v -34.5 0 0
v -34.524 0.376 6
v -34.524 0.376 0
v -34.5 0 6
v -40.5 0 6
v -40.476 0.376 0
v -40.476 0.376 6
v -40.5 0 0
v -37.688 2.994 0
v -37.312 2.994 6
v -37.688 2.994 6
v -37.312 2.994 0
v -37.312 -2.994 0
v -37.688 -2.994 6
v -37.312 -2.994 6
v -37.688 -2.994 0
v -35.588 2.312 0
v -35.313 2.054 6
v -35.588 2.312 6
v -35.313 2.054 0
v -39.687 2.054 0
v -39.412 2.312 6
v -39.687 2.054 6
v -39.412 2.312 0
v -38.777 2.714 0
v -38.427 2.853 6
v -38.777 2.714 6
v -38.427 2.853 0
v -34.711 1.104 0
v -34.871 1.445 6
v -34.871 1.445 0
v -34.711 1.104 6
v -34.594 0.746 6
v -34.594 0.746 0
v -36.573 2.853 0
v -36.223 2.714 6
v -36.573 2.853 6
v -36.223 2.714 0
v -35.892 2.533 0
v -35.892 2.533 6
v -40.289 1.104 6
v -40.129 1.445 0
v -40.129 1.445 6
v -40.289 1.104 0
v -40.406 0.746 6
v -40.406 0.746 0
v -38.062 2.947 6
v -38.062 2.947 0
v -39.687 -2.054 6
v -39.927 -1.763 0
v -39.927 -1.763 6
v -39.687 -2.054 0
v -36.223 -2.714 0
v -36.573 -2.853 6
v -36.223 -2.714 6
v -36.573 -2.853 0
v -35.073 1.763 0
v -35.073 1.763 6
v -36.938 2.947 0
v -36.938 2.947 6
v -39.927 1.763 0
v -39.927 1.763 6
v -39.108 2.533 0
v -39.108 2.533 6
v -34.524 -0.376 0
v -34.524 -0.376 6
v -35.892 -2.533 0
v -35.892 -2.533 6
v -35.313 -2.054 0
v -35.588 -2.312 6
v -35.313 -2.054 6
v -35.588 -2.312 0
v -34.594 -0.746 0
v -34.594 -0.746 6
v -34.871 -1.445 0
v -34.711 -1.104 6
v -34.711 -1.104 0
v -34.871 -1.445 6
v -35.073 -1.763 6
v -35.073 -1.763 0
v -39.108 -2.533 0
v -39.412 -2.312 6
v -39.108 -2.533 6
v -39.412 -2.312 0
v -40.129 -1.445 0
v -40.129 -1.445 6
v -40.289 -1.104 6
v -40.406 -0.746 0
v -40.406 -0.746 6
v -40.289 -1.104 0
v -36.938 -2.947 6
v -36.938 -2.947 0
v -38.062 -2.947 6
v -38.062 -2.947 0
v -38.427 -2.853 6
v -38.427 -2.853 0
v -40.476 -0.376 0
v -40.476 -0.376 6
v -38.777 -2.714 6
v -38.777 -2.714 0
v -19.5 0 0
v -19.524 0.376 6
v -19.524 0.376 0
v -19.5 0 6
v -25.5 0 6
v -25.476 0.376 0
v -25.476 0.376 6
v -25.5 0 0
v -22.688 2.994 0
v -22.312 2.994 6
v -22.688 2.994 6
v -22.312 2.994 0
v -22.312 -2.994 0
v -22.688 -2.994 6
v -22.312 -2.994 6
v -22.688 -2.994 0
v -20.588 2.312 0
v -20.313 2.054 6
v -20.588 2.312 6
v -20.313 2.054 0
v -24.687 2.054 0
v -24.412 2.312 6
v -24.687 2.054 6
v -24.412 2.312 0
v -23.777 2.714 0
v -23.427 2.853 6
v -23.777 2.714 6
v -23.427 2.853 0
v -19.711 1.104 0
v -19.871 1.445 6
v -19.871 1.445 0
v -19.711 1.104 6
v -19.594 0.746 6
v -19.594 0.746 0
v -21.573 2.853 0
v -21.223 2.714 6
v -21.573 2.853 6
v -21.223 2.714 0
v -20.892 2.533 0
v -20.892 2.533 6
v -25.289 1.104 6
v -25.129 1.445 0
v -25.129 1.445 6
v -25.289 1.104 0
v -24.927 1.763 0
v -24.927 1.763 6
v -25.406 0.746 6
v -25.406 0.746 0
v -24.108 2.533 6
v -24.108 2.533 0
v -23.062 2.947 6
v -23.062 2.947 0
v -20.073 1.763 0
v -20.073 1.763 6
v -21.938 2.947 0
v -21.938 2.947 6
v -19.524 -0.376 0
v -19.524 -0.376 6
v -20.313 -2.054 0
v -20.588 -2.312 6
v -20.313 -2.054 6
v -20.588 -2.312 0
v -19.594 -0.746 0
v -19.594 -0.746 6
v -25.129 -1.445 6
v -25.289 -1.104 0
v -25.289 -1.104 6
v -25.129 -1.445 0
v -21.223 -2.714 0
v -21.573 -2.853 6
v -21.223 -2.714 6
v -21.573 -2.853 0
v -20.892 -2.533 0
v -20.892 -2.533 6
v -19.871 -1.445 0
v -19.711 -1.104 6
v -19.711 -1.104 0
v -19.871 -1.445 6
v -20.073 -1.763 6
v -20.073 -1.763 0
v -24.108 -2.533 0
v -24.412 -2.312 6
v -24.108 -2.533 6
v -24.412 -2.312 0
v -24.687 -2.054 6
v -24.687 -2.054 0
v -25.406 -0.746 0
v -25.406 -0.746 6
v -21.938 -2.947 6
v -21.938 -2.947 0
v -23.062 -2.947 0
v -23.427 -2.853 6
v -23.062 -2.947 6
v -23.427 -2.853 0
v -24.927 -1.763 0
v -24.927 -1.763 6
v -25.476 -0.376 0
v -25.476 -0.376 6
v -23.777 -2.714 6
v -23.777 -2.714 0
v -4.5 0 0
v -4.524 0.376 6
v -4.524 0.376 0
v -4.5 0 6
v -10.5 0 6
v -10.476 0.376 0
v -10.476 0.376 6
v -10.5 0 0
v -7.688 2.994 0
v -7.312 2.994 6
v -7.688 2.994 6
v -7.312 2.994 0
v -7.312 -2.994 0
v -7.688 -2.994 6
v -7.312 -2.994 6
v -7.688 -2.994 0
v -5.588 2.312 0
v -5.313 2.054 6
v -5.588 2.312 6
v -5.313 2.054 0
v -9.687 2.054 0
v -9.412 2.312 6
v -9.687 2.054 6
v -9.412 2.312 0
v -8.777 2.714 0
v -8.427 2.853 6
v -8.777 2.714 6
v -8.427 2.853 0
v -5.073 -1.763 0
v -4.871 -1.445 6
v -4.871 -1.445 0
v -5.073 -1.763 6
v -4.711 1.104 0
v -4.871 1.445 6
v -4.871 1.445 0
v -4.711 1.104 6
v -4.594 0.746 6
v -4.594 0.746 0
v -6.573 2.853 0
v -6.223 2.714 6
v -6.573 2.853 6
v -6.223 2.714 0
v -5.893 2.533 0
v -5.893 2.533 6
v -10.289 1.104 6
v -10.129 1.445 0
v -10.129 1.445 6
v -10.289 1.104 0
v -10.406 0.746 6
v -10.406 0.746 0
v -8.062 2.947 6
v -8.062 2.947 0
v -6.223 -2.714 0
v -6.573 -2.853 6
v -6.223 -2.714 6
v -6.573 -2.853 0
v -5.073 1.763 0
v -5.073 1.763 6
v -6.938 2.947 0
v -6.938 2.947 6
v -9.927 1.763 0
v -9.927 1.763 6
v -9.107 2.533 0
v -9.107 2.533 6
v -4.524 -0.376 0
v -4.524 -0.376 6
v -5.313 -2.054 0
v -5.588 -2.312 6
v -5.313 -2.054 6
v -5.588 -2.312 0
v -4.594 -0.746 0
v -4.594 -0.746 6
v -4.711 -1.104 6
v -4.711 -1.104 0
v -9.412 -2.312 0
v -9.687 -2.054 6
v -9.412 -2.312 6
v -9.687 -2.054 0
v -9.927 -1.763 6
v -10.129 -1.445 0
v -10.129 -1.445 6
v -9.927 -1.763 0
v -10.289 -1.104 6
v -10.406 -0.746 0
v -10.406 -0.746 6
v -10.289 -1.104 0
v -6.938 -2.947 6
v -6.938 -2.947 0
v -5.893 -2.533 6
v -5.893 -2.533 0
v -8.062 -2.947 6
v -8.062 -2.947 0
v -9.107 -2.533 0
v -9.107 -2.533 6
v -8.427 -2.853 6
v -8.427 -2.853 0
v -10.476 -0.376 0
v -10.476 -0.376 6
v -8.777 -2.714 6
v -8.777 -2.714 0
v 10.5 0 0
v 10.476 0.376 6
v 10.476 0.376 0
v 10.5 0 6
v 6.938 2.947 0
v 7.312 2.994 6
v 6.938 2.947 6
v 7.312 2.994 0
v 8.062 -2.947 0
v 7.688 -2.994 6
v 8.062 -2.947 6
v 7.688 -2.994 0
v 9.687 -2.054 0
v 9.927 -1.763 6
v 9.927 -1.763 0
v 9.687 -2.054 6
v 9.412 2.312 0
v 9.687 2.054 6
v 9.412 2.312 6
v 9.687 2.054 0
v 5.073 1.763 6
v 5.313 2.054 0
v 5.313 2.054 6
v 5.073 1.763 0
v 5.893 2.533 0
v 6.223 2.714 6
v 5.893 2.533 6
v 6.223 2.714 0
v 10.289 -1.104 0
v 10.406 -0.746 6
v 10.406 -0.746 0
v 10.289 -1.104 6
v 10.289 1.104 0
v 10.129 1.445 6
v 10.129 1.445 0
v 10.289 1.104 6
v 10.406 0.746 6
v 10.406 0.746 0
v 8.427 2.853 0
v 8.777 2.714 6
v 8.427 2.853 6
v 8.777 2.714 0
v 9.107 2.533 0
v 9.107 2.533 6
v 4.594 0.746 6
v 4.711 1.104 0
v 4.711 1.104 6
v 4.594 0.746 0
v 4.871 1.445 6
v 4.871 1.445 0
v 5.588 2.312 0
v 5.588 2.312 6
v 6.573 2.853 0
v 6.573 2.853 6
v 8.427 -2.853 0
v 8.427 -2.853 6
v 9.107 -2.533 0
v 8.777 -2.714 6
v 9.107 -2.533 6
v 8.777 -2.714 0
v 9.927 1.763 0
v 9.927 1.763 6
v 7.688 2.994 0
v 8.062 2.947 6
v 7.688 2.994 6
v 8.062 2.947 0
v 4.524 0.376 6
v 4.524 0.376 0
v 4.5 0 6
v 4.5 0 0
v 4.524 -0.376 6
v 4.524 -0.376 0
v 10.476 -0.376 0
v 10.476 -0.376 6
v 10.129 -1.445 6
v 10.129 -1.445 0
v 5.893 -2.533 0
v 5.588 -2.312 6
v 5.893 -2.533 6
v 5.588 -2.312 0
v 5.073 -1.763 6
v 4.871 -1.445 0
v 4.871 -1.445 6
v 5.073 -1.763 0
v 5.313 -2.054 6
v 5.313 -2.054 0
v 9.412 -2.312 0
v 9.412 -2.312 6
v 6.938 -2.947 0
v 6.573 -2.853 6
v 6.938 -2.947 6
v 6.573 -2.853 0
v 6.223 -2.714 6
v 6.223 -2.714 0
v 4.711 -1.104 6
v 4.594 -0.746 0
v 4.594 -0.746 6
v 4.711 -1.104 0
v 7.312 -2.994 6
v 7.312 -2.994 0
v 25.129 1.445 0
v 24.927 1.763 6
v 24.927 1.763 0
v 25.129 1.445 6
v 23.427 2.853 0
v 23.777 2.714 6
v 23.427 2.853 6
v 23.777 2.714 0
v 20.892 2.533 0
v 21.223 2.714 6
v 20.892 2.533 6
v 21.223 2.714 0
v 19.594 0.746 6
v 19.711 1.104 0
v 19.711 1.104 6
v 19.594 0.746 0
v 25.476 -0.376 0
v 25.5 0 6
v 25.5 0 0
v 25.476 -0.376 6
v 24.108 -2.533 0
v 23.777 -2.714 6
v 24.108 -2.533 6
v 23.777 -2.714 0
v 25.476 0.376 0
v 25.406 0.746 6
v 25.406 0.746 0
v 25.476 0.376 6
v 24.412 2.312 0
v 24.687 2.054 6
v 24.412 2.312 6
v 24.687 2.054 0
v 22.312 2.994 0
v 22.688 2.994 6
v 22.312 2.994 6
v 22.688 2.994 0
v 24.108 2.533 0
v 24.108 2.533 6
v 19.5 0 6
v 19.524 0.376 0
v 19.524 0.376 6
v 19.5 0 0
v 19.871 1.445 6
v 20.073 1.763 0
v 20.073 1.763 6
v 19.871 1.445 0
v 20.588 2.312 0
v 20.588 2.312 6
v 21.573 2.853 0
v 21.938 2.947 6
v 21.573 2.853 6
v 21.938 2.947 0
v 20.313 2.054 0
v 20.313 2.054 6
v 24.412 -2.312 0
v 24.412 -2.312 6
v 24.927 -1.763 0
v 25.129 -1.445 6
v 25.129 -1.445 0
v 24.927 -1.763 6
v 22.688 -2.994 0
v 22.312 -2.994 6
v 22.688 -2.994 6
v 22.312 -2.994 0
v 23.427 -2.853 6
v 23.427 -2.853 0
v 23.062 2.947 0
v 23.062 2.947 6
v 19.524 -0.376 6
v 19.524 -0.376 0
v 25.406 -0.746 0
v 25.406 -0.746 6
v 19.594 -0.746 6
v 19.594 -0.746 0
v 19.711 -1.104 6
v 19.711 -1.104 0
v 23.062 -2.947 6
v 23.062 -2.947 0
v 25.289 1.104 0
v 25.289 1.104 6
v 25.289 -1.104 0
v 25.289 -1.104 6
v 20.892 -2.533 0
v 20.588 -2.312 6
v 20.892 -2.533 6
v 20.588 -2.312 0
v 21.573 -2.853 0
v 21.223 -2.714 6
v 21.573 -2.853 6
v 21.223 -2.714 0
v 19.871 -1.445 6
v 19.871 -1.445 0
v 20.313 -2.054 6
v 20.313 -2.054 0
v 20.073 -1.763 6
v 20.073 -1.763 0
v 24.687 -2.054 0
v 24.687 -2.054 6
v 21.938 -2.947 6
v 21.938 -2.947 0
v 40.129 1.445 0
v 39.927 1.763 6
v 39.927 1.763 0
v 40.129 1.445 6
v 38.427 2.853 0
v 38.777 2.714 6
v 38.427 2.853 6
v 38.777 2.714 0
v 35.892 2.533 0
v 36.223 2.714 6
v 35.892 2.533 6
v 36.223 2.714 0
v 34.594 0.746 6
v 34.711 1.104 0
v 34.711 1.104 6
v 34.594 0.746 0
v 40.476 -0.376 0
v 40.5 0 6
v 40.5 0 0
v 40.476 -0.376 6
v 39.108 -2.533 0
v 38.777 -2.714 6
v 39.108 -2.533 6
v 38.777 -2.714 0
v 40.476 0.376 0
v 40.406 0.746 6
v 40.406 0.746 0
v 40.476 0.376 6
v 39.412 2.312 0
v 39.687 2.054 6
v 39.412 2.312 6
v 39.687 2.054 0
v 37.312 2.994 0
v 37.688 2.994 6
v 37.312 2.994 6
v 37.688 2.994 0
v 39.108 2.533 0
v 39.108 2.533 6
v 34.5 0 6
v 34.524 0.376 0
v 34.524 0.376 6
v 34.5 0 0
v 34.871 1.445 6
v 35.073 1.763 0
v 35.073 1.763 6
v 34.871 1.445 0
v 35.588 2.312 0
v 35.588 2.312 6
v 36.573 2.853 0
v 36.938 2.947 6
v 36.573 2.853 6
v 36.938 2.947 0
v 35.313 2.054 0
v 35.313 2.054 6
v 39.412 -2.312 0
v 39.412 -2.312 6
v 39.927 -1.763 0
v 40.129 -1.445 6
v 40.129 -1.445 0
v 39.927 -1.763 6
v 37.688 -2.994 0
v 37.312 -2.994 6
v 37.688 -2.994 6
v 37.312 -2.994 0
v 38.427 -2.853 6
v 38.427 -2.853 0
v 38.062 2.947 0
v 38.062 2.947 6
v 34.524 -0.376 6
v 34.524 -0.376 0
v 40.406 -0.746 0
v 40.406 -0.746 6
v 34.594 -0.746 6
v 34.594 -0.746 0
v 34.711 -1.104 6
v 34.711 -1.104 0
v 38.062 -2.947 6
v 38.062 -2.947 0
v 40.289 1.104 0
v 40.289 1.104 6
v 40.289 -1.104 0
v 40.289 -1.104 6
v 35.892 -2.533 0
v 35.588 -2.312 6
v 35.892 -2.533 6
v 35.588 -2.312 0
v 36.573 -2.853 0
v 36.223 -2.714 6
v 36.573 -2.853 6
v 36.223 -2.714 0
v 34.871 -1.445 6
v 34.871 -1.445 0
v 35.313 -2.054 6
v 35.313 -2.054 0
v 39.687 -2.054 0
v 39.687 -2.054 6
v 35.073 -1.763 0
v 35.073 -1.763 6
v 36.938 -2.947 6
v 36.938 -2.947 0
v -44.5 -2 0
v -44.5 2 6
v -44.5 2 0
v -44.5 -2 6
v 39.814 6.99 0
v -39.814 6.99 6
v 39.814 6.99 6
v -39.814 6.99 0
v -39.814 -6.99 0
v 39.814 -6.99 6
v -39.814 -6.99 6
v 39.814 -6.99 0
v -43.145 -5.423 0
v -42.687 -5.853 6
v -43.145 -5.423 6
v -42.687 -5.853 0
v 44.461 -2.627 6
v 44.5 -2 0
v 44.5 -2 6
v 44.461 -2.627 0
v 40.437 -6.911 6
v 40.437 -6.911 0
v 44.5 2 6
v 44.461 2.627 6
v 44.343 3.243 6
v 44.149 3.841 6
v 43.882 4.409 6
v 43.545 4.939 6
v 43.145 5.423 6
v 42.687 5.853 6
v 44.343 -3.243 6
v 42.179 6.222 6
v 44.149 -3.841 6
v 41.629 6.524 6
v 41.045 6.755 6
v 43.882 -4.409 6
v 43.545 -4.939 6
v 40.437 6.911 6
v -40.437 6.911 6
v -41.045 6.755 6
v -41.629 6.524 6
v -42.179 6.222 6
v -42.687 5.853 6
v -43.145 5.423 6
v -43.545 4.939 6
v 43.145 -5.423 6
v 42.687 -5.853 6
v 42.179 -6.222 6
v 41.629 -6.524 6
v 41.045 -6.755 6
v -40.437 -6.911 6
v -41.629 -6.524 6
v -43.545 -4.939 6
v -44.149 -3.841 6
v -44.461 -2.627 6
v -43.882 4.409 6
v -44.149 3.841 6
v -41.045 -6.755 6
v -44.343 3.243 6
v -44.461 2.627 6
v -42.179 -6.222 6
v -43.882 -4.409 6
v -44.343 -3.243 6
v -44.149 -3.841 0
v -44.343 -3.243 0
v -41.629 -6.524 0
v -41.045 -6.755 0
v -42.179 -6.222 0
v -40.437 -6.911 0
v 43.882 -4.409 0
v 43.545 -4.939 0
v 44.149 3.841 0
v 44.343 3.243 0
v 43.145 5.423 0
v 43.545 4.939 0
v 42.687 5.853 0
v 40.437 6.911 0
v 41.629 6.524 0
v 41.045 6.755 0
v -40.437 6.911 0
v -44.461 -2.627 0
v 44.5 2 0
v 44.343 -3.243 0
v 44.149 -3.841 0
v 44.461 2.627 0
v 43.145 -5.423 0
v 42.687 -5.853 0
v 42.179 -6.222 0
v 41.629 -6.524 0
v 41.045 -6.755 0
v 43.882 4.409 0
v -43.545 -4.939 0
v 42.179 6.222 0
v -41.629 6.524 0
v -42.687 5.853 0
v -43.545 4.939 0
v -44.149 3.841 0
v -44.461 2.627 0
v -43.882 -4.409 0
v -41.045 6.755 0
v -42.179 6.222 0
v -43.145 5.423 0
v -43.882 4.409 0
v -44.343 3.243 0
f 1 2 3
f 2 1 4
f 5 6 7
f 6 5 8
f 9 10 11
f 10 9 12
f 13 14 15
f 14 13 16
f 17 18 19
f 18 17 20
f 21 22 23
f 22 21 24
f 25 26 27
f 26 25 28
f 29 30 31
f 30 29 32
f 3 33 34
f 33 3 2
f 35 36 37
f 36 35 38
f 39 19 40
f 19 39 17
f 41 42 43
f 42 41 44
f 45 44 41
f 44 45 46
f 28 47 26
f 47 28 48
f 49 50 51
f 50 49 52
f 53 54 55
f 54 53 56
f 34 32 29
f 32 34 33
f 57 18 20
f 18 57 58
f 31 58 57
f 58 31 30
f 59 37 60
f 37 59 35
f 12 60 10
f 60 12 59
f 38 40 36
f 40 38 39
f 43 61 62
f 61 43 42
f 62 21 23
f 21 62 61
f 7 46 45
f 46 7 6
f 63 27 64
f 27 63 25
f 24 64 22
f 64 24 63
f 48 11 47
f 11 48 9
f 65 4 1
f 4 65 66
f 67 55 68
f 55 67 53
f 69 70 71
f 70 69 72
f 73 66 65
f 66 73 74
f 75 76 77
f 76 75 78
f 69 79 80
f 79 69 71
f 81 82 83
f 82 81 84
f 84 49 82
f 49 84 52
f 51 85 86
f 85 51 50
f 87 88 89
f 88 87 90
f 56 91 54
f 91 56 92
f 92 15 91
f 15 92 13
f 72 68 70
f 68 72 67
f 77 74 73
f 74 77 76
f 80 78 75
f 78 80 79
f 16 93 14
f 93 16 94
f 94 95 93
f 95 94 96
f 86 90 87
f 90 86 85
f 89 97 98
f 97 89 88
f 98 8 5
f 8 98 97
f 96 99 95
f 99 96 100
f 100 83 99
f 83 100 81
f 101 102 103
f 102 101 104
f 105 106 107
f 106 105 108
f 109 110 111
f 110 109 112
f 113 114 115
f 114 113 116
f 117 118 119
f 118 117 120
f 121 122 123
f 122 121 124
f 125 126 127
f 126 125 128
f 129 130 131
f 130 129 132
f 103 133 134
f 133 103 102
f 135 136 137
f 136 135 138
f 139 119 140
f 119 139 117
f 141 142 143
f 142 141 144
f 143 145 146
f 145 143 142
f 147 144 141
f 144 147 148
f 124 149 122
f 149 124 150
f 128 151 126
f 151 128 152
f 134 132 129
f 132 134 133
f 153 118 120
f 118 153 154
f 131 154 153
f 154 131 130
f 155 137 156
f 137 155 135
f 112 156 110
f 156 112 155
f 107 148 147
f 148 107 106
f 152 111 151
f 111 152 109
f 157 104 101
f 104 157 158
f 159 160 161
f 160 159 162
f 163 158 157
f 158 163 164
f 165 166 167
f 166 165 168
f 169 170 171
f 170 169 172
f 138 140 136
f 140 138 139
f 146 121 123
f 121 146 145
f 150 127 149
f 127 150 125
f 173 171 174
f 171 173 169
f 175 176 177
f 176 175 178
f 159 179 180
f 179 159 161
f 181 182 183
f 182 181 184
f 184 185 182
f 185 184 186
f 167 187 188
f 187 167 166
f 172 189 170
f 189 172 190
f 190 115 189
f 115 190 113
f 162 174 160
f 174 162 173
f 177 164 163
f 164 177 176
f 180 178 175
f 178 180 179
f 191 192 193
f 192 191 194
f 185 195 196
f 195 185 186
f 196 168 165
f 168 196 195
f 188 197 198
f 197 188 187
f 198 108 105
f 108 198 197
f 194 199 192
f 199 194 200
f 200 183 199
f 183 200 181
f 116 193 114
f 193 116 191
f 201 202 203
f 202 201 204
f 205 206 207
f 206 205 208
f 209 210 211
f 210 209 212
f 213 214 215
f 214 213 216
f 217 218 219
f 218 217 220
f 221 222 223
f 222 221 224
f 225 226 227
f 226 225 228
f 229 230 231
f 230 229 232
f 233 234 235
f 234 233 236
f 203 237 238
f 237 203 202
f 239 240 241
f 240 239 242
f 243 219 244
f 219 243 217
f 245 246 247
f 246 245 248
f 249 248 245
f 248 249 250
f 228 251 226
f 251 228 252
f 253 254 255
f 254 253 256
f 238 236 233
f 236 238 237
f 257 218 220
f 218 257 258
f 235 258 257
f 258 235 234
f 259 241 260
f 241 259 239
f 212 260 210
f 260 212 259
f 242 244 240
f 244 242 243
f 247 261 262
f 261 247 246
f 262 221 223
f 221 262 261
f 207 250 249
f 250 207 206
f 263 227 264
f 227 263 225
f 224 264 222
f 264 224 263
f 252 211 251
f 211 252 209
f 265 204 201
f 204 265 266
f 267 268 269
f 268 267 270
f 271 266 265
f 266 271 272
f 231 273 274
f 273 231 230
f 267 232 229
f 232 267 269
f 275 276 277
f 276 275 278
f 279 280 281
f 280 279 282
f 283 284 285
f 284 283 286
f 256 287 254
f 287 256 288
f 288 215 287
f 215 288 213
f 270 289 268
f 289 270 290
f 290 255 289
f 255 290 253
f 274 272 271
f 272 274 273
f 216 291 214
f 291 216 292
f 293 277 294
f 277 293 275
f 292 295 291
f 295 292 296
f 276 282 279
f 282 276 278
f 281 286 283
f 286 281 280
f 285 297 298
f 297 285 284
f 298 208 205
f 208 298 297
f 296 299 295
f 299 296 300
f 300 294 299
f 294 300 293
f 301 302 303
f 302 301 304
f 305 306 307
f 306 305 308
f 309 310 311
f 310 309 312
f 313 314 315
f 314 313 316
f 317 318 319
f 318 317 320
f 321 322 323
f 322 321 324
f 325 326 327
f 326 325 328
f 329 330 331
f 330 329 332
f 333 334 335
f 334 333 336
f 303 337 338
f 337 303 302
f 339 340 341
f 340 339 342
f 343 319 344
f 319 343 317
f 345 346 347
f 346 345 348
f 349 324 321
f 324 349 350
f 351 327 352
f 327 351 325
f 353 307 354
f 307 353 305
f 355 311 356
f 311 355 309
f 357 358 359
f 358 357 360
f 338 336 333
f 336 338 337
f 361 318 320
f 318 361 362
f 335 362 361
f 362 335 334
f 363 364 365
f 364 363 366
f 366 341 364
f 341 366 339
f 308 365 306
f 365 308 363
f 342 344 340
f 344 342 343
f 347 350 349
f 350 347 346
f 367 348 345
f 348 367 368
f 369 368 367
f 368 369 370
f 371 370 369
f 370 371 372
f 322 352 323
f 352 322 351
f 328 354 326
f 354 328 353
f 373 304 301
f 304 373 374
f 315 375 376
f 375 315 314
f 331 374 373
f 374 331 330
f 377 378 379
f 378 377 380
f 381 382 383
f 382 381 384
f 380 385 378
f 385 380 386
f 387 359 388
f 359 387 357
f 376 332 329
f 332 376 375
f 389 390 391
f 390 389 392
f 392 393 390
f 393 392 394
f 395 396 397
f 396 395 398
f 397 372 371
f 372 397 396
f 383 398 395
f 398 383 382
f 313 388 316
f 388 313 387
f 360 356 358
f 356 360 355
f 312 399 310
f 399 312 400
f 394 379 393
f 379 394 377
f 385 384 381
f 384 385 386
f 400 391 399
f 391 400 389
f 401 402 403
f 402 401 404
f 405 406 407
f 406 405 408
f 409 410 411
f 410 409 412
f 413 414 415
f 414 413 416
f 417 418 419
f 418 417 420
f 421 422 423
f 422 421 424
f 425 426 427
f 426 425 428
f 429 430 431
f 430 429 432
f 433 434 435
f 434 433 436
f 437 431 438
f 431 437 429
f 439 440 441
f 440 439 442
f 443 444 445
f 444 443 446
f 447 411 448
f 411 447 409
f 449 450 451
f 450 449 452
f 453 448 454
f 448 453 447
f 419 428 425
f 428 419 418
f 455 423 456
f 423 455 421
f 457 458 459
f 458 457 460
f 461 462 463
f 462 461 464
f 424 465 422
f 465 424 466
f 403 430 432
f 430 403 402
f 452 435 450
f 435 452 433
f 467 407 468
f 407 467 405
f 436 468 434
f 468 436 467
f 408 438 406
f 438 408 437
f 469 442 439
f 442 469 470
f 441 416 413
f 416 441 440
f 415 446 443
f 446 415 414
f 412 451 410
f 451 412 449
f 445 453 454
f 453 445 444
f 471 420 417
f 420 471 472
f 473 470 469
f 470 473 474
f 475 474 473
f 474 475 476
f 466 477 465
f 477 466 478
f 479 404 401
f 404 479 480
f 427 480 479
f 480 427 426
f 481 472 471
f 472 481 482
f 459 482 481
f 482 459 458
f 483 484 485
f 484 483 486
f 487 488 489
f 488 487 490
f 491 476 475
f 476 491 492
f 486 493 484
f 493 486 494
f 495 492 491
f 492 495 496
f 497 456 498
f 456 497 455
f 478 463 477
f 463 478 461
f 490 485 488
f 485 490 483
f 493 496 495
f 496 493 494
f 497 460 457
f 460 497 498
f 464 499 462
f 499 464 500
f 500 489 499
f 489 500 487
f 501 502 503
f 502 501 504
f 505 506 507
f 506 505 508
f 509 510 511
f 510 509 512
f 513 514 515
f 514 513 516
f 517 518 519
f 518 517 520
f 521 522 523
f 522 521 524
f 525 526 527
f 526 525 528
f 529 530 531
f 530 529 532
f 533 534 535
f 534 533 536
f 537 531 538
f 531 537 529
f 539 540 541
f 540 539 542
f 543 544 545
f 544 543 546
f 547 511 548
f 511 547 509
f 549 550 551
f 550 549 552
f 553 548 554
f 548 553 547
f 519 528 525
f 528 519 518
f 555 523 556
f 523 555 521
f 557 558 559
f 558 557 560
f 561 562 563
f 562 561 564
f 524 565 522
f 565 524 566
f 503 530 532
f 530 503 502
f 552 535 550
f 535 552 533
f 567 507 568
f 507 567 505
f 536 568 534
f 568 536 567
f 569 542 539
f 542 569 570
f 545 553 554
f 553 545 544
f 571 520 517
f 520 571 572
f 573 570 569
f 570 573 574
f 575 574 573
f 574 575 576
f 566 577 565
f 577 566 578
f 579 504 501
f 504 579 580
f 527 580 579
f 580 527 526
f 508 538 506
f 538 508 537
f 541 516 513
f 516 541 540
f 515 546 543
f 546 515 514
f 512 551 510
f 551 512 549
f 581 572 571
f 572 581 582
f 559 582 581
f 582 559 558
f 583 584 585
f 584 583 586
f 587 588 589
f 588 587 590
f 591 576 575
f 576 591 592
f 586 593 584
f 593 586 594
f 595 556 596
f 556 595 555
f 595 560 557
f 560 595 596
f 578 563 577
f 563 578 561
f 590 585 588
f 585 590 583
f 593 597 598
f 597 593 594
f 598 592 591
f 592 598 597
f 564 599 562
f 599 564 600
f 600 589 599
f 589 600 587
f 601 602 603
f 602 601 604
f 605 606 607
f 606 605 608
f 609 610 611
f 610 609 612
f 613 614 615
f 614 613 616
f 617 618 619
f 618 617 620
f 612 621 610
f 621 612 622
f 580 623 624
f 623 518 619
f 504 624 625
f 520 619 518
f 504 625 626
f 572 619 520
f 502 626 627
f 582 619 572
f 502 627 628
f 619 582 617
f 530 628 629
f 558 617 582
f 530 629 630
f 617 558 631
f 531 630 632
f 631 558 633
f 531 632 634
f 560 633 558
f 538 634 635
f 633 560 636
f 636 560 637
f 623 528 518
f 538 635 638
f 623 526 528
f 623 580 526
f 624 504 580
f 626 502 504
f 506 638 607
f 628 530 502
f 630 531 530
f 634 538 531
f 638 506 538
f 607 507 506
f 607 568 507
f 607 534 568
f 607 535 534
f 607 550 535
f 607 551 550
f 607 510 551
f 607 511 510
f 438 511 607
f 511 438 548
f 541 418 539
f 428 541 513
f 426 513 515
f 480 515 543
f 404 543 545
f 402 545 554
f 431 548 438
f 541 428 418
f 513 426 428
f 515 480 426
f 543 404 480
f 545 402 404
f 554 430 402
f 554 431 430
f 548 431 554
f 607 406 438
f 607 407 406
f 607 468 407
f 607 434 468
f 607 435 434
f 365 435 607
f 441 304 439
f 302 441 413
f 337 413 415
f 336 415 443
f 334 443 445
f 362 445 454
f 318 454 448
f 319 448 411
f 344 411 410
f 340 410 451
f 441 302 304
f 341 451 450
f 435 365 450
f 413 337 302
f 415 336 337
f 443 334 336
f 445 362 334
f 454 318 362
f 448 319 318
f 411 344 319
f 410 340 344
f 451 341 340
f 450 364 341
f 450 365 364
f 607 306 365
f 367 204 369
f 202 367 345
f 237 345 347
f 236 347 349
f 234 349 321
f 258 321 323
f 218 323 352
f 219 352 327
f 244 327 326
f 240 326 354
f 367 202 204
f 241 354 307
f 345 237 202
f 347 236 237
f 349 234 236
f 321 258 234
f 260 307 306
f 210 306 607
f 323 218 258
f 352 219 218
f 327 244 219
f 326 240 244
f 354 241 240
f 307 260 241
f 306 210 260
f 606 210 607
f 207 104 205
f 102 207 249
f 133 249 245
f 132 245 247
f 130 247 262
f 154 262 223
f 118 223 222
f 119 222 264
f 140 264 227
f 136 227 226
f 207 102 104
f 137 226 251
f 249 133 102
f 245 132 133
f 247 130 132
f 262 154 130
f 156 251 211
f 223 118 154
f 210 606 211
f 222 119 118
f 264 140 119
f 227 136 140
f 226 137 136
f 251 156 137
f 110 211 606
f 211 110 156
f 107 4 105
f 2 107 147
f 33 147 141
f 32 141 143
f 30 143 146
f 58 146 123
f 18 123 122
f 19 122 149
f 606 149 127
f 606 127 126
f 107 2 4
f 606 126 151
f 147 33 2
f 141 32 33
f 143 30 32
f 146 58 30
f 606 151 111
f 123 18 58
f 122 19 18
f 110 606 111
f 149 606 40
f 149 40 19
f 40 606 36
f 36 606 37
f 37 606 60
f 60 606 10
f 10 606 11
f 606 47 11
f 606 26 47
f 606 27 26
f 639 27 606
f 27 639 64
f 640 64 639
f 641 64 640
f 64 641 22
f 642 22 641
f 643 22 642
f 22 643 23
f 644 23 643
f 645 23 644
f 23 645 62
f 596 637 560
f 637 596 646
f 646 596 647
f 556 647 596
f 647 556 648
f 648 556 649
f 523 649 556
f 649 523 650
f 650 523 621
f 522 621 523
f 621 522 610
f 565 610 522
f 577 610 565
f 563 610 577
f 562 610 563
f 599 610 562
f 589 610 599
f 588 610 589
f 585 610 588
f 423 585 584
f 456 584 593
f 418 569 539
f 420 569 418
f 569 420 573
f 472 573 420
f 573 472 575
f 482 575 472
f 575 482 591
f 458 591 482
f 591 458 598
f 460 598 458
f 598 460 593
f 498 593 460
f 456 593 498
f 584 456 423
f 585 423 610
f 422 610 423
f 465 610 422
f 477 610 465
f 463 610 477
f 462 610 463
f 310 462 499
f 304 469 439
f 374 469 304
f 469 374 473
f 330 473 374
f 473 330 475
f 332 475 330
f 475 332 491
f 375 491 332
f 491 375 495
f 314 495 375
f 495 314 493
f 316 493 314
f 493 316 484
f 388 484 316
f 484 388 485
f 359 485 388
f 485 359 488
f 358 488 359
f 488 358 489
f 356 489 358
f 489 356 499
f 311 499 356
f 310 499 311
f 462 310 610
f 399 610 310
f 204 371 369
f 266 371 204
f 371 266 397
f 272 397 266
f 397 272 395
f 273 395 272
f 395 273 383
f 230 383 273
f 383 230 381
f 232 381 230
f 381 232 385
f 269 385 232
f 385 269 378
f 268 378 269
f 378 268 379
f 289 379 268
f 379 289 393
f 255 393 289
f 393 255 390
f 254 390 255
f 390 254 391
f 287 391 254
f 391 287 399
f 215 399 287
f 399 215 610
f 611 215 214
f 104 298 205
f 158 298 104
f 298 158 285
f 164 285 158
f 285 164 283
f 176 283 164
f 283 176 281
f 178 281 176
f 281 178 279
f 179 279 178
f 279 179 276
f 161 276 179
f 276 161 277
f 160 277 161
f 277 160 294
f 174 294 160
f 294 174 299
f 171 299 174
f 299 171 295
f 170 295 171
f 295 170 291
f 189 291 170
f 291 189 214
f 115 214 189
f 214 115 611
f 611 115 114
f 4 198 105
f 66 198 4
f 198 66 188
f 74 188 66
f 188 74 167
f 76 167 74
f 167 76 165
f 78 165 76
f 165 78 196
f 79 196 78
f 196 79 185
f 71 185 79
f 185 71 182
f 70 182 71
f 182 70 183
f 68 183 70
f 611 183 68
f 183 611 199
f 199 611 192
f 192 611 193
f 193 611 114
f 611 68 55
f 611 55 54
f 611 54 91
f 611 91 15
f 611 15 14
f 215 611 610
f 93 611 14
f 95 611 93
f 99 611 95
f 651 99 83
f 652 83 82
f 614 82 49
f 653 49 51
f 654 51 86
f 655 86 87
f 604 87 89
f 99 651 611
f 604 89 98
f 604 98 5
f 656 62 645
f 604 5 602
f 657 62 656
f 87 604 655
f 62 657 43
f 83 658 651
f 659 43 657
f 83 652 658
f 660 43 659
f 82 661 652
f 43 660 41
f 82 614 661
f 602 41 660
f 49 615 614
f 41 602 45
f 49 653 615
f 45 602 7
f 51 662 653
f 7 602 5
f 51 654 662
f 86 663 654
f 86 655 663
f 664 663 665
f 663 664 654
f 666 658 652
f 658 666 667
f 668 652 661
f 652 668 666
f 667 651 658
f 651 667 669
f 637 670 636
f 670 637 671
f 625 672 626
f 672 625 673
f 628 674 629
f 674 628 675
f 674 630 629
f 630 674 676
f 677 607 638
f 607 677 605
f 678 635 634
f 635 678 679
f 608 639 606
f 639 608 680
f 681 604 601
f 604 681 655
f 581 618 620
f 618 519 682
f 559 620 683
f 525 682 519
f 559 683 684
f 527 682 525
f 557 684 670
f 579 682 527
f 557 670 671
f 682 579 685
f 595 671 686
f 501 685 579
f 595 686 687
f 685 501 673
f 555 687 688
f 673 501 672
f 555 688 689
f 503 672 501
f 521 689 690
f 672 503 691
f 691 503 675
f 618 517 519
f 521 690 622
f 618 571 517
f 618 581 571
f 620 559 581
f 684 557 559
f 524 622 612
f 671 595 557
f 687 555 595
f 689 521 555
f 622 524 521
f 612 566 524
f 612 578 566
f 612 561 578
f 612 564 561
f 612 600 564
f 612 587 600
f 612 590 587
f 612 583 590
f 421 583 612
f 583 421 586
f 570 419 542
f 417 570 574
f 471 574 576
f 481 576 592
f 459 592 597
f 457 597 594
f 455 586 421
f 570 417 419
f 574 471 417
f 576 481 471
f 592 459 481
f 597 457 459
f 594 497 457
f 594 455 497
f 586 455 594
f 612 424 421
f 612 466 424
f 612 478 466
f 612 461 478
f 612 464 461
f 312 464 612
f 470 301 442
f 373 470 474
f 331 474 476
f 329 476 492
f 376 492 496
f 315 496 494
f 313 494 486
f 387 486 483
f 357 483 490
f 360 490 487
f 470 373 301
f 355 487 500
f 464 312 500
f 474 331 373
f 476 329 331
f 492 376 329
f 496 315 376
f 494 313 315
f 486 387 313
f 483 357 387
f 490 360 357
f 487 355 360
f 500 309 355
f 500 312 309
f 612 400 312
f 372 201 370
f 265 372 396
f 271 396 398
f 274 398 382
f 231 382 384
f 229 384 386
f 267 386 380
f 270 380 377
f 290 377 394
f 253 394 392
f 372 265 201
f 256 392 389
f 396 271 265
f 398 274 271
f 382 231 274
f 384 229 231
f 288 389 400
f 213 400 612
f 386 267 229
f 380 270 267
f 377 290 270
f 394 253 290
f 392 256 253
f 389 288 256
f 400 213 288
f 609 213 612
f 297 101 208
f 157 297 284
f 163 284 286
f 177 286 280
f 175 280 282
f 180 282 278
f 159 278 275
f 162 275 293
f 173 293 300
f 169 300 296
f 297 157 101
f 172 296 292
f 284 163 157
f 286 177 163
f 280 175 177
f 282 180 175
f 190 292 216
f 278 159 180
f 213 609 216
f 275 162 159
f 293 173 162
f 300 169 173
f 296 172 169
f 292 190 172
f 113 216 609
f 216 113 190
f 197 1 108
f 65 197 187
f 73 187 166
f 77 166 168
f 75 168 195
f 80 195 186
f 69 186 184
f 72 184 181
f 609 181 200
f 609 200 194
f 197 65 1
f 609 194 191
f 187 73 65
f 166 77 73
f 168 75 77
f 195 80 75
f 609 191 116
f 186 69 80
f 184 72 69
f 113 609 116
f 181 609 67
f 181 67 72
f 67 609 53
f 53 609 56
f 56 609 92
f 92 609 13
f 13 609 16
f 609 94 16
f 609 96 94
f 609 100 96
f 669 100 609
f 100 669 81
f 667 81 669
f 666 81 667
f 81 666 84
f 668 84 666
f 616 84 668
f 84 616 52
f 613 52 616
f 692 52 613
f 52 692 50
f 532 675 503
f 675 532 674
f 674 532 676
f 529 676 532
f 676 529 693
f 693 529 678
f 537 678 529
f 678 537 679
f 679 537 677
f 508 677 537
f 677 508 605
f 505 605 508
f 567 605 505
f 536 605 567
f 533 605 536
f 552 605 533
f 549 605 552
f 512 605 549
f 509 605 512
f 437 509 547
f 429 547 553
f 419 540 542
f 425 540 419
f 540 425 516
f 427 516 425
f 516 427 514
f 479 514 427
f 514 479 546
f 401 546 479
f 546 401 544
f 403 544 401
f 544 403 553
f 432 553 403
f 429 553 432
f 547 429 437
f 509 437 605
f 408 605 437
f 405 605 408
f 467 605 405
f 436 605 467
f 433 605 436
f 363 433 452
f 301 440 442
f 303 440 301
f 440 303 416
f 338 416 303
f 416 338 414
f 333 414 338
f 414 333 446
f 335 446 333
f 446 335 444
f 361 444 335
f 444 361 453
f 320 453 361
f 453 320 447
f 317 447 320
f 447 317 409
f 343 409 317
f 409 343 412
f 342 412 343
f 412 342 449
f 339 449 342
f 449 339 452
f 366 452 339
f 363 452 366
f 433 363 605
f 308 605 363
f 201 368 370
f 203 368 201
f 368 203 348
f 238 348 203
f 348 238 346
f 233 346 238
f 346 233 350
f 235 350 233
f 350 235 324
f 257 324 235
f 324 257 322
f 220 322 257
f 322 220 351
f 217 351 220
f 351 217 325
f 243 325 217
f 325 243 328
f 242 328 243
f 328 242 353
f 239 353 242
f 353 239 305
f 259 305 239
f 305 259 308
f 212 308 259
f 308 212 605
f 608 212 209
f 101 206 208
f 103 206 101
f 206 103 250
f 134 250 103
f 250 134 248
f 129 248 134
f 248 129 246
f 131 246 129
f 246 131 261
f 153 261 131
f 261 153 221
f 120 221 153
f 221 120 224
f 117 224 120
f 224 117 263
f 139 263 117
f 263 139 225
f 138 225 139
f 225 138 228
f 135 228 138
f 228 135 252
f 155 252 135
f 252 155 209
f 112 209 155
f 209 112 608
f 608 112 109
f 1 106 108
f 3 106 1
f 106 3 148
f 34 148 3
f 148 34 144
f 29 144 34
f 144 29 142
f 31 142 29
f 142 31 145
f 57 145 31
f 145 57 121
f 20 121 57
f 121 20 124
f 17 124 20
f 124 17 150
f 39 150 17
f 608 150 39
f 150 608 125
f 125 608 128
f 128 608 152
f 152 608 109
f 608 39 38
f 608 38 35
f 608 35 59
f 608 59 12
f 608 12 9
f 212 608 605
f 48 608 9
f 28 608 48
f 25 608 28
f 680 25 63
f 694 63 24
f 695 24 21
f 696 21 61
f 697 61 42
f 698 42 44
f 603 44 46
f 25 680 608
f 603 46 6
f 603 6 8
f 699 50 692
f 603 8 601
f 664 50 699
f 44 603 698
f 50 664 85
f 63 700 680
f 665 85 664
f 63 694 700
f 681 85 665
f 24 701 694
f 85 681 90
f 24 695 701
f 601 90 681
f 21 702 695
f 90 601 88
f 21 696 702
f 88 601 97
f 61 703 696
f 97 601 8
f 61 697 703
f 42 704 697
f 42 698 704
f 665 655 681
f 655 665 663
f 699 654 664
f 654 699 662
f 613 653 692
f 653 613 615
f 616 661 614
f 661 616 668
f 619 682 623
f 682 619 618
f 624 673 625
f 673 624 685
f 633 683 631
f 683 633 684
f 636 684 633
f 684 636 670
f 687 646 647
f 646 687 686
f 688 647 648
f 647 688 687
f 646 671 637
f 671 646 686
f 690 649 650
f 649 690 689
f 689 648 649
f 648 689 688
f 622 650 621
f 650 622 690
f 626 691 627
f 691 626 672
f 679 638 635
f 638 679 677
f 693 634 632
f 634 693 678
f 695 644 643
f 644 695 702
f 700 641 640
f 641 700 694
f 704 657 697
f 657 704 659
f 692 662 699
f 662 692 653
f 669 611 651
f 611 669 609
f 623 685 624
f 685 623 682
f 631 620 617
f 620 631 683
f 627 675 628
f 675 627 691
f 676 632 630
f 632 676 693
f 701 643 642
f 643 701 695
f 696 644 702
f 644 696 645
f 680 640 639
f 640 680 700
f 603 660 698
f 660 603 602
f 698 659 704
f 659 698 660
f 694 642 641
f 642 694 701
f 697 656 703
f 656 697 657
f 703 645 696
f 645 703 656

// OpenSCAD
$fn = 50;


difference() {
	union() {
		hull() {
			translate(v = [-39.5000000000, 2.0000000000, 0]) {
				cylinder(h = 6, r = 5);
			}
			translate(v = [39.5000000000, 2.0000000000, 0]) {
				cylinder(h = 6, r = 5);
			}
			translate(v = [-39.5000000000, -2.0000000000, 0]) {
				cylinder(h = 6, r = 5);
			}
			translate(v = [39.5000000000, -2.0000000000, 0]) {
				cylinder(h = 6, r = 5);
			}
		}
	}
	union() {
		translate(v = [-37.5000000000, 0.0000000000, 0]) {
			translate(v = [0, 0, -100]) {
				cylinder(h = 200, r = 3.0000000000);
			}
		}
		translate(v = [-22.5000000000, 0.0000000000, 0]) {
			translate(v = [0, 0, -100]) {
				cylinder(h = 200, r = 3.0000000000);
			}
		}
		translate(v = [-7.5000000000, 0.0000000000, 0]) {
			translate(v = [0, 0, -100]) {
				cylinder(h = 200, r = 3.0000000000);
			}
		}
		translate(v = [7.5000000000, 0.0000000000, 0]) {
			translate(v = [0, 0, -100]) {
				cylinder(h = 200, r = 3.0000000000);
			}
		}
		translate(v = [22.5000000000, 0.0000000000, 0]) {
			translate(v = [0, 0, -100]) {
				cylinder(h = 200, r = 3.0000000000);
			}
		}
		translate(v = [37.5000000000, 0.0000000000, 0]) {
			translate(v = [0, 0, -100]) {
				cylinder(h = 200, r = 3.0000000000);
			}
		}
	}
}
